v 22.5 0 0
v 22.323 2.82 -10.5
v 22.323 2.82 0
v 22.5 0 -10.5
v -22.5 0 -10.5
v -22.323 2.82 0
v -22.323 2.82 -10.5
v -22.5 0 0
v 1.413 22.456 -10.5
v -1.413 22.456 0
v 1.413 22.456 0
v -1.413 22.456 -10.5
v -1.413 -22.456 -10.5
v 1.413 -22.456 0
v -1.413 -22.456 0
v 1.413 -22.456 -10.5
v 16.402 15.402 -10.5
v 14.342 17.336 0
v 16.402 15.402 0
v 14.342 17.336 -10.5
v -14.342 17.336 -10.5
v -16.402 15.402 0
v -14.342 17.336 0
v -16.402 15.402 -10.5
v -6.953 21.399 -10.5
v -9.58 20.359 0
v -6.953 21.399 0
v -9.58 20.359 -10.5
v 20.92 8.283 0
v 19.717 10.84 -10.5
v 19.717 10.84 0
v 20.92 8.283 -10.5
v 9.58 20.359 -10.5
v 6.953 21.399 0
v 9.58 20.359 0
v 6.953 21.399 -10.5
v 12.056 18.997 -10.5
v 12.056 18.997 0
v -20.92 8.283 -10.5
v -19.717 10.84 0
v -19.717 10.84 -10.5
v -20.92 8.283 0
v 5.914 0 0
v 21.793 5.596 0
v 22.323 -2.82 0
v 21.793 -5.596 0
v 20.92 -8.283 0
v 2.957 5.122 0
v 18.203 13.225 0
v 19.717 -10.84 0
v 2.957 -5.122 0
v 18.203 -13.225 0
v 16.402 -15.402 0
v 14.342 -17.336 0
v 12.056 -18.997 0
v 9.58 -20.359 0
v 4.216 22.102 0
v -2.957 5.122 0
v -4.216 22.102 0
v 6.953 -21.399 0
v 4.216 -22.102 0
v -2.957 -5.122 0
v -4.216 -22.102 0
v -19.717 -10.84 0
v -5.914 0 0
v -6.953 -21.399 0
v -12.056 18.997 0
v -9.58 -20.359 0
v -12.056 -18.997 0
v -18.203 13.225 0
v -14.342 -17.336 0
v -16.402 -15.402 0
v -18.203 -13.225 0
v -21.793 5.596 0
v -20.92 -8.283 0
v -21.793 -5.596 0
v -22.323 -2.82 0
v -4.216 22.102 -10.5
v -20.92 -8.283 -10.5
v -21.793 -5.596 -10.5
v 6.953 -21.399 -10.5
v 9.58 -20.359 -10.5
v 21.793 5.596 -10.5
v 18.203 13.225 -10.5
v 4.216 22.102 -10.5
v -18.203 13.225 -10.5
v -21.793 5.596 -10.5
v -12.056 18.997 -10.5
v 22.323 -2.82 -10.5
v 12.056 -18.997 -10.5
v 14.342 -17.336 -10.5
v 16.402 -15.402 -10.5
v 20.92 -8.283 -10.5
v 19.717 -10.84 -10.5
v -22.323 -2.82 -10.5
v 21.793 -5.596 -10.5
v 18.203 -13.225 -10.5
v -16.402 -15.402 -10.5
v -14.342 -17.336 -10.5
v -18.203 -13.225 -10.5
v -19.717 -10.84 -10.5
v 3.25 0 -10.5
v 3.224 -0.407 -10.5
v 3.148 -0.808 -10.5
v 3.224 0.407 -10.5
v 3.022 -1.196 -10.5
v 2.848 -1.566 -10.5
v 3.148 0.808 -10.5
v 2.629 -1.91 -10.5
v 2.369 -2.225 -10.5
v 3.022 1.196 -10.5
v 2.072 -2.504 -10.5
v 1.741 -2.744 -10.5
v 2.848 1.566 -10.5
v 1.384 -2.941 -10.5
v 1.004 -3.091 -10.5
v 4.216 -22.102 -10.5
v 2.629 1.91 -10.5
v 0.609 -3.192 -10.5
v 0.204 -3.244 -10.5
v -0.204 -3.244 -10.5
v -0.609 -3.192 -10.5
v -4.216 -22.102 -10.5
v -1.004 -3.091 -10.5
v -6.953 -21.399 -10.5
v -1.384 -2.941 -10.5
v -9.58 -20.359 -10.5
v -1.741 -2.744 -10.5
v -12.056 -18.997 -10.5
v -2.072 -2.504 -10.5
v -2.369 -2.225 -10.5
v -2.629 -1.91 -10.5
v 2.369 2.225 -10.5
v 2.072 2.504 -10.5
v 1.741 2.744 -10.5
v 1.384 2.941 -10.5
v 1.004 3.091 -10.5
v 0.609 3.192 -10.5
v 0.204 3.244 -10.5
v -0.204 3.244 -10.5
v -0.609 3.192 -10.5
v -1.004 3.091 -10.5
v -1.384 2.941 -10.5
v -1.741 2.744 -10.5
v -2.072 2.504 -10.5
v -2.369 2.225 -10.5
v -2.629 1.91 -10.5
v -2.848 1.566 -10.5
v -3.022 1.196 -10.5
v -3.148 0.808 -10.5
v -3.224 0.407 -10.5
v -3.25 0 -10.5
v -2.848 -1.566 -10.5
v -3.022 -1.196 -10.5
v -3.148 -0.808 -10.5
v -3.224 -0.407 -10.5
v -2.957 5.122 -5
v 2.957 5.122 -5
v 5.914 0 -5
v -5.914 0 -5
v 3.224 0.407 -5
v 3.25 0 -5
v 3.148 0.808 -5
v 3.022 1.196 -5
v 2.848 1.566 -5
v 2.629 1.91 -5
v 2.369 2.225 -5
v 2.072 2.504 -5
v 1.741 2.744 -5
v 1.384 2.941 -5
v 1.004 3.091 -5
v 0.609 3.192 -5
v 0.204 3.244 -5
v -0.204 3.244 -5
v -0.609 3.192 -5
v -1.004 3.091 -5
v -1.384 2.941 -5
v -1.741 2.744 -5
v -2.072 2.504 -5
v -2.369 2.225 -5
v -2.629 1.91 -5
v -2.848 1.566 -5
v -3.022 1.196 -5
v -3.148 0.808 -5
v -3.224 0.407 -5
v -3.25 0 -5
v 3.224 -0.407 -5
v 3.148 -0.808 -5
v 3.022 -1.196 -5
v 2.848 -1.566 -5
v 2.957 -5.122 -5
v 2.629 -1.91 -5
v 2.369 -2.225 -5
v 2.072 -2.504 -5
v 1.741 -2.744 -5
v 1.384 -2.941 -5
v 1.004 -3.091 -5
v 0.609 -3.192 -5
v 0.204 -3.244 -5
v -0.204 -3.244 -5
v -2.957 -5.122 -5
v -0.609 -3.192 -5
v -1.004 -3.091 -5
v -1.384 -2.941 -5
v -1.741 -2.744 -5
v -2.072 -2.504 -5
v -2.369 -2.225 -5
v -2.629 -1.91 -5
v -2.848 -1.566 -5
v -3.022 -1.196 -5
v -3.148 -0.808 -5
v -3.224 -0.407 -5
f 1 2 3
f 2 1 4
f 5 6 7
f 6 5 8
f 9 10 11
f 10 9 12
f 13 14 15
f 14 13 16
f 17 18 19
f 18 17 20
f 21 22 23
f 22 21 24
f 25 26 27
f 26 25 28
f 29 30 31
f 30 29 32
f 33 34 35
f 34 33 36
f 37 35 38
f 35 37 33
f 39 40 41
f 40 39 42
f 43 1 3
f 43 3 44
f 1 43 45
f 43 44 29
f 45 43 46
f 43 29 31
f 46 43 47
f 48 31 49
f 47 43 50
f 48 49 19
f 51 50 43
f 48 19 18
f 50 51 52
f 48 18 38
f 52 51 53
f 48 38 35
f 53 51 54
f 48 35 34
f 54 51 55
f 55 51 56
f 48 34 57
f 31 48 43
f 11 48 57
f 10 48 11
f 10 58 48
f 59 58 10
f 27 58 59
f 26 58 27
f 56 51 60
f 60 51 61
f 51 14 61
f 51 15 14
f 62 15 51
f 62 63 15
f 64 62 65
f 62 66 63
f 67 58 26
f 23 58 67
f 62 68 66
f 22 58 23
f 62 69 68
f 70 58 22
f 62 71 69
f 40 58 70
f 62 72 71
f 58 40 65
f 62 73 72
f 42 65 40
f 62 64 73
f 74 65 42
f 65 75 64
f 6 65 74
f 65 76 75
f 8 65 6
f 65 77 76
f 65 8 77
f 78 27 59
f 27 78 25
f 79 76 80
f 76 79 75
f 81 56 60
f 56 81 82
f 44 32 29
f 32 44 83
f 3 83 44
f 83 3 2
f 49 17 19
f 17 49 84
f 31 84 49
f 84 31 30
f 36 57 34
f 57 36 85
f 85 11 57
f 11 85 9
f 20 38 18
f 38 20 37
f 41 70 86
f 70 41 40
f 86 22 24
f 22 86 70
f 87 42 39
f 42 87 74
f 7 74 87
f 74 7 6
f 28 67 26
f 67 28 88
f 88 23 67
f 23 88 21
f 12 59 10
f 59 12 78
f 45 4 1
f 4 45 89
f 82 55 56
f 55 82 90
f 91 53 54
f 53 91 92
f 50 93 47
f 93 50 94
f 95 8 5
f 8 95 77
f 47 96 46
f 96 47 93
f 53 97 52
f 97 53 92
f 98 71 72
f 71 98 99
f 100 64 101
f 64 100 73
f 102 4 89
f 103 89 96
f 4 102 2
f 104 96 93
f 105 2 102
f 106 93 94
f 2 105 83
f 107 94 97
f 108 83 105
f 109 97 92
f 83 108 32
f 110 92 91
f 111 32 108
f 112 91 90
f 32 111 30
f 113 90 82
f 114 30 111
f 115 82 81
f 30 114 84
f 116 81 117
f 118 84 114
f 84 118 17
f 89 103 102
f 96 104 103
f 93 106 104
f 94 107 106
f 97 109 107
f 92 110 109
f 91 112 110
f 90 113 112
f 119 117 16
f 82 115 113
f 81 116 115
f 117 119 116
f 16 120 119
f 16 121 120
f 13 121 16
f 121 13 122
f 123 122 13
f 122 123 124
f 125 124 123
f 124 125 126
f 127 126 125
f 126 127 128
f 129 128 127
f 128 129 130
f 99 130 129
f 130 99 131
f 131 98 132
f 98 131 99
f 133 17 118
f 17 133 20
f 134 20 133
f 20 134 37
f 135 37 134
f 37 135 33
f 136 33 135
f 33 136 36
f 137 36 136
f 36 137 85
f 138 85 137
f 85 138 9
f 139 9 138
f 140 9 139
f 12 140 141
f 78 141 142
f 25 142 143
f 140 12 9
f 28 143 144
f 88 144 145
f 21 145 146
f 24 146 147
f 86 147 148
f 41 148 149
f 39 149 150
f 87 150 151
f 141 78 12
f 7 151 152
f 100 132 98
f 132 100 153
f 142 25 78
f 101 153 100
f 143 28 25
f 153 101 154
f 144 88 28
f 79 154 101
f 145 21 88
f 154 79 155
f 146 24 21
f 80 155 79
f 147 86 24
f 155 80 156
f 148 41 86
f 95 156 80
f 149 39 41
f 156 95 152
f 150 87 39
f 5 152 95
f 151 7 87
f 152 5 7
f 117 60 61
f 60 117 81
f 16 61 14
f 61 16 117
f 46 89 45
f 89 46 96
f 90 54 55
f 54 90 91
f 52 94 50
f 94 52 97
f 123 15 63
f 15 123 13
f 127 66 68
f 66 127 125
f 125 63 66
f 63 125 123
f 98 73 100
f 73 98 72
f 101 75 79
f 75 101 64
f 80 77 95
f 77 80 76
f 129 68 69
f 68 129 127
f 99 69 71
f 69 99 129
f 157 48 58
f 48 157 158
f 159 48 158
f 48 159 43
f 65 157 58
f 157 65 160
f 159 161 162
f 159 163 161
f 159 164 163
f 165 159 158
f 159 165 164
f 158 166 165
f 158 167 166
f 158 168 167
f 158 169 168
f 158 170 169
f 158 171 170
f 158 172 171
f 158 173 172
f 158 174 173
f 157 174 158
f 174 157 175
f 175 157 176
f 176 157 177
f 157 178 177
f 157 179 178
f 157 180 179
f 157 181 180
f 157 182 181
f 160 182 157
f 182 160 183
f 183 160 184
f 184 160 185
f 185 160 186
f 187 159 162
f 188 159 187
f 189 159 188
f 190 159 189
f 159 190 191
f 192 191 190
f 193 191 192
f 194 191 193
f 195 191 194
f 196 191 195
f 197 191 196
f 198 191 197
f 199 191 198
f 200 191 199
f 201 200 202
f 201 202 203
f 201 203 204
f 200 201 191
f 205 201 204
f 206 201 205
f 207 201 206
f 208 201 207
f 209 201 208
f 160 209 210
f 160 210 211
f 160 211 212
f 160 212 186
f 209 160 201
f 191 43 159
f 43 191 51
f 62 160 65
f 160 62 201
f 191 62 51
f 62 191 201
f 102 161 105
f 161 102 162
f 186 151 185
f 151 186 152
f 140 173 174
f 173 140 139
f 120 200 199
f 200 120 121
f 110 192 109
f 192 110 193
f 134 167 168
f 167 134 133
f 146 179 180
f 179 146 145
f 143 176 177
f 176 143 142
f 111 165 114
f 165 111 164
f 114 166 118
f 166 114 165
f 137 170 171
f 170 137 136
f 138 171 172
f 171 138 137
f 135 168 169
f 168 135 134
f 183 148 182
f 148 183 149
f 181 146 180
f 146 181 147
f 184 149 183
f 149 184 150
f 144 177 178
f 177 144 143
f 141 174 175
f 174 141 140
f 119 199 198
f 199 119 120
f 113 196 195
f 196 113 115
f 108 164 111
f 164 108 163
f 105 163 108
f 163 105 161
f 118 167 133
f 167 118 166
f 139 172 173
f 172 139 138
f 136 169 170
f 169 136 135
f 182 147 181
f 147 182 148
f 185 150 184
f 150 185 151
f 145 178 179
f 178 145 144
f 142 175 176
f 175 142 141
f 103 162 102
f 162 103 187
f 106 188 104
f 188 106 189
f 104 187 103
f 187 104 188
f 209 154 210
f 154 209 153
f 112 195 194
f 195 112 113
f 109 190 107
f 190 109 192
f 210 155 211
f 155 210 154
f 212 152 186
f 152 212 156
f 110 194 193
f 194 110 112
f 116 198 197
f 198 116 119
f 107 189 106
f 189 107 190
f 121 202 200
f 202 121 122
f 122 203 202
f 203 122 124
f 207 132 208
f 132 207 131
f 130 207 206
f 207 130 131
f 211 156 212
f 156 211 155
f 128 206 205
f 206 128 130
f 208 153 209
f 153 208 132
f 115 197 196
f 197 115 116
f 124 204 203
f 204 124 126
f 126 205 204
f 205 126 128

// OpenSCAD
$fn = 50;


difference() {
	union() {
		translate(v = [0, 0, -10.5000000000]) {
			cylinder(h = 10.5000000000, r = 22.5000000000);
		}
		translate(v = [0, 0, -9.0000000000]) {
			cylinder(h = 9, r = 2.8750000000);
		}
	}
	union() {
		translate(v = [0, 0, 0]) {
			rotate(a = [0, 0, 0]) {
				difference() {
					union() {
						translate(v = [0, 0, -5]) {
							#linear_extrude(height = 5) {
								polygon(points = [[5.9142500000, 0.0000000000], [2.9571250000, 5.1218907443], [-2.9571250000, 5.1218907443], [-5.9142500000, 0.0000000000], [-2.9571250000, -5.1218907443], [2.9571250000, -5.1218907443]]);
							}
						}
					}
					union();
				}
			}
		}
		#translate(v = [0, 0, -100.0000000000]) {
			cylinder(h = 200, r = 3.2500000000);
		}
	}
}
